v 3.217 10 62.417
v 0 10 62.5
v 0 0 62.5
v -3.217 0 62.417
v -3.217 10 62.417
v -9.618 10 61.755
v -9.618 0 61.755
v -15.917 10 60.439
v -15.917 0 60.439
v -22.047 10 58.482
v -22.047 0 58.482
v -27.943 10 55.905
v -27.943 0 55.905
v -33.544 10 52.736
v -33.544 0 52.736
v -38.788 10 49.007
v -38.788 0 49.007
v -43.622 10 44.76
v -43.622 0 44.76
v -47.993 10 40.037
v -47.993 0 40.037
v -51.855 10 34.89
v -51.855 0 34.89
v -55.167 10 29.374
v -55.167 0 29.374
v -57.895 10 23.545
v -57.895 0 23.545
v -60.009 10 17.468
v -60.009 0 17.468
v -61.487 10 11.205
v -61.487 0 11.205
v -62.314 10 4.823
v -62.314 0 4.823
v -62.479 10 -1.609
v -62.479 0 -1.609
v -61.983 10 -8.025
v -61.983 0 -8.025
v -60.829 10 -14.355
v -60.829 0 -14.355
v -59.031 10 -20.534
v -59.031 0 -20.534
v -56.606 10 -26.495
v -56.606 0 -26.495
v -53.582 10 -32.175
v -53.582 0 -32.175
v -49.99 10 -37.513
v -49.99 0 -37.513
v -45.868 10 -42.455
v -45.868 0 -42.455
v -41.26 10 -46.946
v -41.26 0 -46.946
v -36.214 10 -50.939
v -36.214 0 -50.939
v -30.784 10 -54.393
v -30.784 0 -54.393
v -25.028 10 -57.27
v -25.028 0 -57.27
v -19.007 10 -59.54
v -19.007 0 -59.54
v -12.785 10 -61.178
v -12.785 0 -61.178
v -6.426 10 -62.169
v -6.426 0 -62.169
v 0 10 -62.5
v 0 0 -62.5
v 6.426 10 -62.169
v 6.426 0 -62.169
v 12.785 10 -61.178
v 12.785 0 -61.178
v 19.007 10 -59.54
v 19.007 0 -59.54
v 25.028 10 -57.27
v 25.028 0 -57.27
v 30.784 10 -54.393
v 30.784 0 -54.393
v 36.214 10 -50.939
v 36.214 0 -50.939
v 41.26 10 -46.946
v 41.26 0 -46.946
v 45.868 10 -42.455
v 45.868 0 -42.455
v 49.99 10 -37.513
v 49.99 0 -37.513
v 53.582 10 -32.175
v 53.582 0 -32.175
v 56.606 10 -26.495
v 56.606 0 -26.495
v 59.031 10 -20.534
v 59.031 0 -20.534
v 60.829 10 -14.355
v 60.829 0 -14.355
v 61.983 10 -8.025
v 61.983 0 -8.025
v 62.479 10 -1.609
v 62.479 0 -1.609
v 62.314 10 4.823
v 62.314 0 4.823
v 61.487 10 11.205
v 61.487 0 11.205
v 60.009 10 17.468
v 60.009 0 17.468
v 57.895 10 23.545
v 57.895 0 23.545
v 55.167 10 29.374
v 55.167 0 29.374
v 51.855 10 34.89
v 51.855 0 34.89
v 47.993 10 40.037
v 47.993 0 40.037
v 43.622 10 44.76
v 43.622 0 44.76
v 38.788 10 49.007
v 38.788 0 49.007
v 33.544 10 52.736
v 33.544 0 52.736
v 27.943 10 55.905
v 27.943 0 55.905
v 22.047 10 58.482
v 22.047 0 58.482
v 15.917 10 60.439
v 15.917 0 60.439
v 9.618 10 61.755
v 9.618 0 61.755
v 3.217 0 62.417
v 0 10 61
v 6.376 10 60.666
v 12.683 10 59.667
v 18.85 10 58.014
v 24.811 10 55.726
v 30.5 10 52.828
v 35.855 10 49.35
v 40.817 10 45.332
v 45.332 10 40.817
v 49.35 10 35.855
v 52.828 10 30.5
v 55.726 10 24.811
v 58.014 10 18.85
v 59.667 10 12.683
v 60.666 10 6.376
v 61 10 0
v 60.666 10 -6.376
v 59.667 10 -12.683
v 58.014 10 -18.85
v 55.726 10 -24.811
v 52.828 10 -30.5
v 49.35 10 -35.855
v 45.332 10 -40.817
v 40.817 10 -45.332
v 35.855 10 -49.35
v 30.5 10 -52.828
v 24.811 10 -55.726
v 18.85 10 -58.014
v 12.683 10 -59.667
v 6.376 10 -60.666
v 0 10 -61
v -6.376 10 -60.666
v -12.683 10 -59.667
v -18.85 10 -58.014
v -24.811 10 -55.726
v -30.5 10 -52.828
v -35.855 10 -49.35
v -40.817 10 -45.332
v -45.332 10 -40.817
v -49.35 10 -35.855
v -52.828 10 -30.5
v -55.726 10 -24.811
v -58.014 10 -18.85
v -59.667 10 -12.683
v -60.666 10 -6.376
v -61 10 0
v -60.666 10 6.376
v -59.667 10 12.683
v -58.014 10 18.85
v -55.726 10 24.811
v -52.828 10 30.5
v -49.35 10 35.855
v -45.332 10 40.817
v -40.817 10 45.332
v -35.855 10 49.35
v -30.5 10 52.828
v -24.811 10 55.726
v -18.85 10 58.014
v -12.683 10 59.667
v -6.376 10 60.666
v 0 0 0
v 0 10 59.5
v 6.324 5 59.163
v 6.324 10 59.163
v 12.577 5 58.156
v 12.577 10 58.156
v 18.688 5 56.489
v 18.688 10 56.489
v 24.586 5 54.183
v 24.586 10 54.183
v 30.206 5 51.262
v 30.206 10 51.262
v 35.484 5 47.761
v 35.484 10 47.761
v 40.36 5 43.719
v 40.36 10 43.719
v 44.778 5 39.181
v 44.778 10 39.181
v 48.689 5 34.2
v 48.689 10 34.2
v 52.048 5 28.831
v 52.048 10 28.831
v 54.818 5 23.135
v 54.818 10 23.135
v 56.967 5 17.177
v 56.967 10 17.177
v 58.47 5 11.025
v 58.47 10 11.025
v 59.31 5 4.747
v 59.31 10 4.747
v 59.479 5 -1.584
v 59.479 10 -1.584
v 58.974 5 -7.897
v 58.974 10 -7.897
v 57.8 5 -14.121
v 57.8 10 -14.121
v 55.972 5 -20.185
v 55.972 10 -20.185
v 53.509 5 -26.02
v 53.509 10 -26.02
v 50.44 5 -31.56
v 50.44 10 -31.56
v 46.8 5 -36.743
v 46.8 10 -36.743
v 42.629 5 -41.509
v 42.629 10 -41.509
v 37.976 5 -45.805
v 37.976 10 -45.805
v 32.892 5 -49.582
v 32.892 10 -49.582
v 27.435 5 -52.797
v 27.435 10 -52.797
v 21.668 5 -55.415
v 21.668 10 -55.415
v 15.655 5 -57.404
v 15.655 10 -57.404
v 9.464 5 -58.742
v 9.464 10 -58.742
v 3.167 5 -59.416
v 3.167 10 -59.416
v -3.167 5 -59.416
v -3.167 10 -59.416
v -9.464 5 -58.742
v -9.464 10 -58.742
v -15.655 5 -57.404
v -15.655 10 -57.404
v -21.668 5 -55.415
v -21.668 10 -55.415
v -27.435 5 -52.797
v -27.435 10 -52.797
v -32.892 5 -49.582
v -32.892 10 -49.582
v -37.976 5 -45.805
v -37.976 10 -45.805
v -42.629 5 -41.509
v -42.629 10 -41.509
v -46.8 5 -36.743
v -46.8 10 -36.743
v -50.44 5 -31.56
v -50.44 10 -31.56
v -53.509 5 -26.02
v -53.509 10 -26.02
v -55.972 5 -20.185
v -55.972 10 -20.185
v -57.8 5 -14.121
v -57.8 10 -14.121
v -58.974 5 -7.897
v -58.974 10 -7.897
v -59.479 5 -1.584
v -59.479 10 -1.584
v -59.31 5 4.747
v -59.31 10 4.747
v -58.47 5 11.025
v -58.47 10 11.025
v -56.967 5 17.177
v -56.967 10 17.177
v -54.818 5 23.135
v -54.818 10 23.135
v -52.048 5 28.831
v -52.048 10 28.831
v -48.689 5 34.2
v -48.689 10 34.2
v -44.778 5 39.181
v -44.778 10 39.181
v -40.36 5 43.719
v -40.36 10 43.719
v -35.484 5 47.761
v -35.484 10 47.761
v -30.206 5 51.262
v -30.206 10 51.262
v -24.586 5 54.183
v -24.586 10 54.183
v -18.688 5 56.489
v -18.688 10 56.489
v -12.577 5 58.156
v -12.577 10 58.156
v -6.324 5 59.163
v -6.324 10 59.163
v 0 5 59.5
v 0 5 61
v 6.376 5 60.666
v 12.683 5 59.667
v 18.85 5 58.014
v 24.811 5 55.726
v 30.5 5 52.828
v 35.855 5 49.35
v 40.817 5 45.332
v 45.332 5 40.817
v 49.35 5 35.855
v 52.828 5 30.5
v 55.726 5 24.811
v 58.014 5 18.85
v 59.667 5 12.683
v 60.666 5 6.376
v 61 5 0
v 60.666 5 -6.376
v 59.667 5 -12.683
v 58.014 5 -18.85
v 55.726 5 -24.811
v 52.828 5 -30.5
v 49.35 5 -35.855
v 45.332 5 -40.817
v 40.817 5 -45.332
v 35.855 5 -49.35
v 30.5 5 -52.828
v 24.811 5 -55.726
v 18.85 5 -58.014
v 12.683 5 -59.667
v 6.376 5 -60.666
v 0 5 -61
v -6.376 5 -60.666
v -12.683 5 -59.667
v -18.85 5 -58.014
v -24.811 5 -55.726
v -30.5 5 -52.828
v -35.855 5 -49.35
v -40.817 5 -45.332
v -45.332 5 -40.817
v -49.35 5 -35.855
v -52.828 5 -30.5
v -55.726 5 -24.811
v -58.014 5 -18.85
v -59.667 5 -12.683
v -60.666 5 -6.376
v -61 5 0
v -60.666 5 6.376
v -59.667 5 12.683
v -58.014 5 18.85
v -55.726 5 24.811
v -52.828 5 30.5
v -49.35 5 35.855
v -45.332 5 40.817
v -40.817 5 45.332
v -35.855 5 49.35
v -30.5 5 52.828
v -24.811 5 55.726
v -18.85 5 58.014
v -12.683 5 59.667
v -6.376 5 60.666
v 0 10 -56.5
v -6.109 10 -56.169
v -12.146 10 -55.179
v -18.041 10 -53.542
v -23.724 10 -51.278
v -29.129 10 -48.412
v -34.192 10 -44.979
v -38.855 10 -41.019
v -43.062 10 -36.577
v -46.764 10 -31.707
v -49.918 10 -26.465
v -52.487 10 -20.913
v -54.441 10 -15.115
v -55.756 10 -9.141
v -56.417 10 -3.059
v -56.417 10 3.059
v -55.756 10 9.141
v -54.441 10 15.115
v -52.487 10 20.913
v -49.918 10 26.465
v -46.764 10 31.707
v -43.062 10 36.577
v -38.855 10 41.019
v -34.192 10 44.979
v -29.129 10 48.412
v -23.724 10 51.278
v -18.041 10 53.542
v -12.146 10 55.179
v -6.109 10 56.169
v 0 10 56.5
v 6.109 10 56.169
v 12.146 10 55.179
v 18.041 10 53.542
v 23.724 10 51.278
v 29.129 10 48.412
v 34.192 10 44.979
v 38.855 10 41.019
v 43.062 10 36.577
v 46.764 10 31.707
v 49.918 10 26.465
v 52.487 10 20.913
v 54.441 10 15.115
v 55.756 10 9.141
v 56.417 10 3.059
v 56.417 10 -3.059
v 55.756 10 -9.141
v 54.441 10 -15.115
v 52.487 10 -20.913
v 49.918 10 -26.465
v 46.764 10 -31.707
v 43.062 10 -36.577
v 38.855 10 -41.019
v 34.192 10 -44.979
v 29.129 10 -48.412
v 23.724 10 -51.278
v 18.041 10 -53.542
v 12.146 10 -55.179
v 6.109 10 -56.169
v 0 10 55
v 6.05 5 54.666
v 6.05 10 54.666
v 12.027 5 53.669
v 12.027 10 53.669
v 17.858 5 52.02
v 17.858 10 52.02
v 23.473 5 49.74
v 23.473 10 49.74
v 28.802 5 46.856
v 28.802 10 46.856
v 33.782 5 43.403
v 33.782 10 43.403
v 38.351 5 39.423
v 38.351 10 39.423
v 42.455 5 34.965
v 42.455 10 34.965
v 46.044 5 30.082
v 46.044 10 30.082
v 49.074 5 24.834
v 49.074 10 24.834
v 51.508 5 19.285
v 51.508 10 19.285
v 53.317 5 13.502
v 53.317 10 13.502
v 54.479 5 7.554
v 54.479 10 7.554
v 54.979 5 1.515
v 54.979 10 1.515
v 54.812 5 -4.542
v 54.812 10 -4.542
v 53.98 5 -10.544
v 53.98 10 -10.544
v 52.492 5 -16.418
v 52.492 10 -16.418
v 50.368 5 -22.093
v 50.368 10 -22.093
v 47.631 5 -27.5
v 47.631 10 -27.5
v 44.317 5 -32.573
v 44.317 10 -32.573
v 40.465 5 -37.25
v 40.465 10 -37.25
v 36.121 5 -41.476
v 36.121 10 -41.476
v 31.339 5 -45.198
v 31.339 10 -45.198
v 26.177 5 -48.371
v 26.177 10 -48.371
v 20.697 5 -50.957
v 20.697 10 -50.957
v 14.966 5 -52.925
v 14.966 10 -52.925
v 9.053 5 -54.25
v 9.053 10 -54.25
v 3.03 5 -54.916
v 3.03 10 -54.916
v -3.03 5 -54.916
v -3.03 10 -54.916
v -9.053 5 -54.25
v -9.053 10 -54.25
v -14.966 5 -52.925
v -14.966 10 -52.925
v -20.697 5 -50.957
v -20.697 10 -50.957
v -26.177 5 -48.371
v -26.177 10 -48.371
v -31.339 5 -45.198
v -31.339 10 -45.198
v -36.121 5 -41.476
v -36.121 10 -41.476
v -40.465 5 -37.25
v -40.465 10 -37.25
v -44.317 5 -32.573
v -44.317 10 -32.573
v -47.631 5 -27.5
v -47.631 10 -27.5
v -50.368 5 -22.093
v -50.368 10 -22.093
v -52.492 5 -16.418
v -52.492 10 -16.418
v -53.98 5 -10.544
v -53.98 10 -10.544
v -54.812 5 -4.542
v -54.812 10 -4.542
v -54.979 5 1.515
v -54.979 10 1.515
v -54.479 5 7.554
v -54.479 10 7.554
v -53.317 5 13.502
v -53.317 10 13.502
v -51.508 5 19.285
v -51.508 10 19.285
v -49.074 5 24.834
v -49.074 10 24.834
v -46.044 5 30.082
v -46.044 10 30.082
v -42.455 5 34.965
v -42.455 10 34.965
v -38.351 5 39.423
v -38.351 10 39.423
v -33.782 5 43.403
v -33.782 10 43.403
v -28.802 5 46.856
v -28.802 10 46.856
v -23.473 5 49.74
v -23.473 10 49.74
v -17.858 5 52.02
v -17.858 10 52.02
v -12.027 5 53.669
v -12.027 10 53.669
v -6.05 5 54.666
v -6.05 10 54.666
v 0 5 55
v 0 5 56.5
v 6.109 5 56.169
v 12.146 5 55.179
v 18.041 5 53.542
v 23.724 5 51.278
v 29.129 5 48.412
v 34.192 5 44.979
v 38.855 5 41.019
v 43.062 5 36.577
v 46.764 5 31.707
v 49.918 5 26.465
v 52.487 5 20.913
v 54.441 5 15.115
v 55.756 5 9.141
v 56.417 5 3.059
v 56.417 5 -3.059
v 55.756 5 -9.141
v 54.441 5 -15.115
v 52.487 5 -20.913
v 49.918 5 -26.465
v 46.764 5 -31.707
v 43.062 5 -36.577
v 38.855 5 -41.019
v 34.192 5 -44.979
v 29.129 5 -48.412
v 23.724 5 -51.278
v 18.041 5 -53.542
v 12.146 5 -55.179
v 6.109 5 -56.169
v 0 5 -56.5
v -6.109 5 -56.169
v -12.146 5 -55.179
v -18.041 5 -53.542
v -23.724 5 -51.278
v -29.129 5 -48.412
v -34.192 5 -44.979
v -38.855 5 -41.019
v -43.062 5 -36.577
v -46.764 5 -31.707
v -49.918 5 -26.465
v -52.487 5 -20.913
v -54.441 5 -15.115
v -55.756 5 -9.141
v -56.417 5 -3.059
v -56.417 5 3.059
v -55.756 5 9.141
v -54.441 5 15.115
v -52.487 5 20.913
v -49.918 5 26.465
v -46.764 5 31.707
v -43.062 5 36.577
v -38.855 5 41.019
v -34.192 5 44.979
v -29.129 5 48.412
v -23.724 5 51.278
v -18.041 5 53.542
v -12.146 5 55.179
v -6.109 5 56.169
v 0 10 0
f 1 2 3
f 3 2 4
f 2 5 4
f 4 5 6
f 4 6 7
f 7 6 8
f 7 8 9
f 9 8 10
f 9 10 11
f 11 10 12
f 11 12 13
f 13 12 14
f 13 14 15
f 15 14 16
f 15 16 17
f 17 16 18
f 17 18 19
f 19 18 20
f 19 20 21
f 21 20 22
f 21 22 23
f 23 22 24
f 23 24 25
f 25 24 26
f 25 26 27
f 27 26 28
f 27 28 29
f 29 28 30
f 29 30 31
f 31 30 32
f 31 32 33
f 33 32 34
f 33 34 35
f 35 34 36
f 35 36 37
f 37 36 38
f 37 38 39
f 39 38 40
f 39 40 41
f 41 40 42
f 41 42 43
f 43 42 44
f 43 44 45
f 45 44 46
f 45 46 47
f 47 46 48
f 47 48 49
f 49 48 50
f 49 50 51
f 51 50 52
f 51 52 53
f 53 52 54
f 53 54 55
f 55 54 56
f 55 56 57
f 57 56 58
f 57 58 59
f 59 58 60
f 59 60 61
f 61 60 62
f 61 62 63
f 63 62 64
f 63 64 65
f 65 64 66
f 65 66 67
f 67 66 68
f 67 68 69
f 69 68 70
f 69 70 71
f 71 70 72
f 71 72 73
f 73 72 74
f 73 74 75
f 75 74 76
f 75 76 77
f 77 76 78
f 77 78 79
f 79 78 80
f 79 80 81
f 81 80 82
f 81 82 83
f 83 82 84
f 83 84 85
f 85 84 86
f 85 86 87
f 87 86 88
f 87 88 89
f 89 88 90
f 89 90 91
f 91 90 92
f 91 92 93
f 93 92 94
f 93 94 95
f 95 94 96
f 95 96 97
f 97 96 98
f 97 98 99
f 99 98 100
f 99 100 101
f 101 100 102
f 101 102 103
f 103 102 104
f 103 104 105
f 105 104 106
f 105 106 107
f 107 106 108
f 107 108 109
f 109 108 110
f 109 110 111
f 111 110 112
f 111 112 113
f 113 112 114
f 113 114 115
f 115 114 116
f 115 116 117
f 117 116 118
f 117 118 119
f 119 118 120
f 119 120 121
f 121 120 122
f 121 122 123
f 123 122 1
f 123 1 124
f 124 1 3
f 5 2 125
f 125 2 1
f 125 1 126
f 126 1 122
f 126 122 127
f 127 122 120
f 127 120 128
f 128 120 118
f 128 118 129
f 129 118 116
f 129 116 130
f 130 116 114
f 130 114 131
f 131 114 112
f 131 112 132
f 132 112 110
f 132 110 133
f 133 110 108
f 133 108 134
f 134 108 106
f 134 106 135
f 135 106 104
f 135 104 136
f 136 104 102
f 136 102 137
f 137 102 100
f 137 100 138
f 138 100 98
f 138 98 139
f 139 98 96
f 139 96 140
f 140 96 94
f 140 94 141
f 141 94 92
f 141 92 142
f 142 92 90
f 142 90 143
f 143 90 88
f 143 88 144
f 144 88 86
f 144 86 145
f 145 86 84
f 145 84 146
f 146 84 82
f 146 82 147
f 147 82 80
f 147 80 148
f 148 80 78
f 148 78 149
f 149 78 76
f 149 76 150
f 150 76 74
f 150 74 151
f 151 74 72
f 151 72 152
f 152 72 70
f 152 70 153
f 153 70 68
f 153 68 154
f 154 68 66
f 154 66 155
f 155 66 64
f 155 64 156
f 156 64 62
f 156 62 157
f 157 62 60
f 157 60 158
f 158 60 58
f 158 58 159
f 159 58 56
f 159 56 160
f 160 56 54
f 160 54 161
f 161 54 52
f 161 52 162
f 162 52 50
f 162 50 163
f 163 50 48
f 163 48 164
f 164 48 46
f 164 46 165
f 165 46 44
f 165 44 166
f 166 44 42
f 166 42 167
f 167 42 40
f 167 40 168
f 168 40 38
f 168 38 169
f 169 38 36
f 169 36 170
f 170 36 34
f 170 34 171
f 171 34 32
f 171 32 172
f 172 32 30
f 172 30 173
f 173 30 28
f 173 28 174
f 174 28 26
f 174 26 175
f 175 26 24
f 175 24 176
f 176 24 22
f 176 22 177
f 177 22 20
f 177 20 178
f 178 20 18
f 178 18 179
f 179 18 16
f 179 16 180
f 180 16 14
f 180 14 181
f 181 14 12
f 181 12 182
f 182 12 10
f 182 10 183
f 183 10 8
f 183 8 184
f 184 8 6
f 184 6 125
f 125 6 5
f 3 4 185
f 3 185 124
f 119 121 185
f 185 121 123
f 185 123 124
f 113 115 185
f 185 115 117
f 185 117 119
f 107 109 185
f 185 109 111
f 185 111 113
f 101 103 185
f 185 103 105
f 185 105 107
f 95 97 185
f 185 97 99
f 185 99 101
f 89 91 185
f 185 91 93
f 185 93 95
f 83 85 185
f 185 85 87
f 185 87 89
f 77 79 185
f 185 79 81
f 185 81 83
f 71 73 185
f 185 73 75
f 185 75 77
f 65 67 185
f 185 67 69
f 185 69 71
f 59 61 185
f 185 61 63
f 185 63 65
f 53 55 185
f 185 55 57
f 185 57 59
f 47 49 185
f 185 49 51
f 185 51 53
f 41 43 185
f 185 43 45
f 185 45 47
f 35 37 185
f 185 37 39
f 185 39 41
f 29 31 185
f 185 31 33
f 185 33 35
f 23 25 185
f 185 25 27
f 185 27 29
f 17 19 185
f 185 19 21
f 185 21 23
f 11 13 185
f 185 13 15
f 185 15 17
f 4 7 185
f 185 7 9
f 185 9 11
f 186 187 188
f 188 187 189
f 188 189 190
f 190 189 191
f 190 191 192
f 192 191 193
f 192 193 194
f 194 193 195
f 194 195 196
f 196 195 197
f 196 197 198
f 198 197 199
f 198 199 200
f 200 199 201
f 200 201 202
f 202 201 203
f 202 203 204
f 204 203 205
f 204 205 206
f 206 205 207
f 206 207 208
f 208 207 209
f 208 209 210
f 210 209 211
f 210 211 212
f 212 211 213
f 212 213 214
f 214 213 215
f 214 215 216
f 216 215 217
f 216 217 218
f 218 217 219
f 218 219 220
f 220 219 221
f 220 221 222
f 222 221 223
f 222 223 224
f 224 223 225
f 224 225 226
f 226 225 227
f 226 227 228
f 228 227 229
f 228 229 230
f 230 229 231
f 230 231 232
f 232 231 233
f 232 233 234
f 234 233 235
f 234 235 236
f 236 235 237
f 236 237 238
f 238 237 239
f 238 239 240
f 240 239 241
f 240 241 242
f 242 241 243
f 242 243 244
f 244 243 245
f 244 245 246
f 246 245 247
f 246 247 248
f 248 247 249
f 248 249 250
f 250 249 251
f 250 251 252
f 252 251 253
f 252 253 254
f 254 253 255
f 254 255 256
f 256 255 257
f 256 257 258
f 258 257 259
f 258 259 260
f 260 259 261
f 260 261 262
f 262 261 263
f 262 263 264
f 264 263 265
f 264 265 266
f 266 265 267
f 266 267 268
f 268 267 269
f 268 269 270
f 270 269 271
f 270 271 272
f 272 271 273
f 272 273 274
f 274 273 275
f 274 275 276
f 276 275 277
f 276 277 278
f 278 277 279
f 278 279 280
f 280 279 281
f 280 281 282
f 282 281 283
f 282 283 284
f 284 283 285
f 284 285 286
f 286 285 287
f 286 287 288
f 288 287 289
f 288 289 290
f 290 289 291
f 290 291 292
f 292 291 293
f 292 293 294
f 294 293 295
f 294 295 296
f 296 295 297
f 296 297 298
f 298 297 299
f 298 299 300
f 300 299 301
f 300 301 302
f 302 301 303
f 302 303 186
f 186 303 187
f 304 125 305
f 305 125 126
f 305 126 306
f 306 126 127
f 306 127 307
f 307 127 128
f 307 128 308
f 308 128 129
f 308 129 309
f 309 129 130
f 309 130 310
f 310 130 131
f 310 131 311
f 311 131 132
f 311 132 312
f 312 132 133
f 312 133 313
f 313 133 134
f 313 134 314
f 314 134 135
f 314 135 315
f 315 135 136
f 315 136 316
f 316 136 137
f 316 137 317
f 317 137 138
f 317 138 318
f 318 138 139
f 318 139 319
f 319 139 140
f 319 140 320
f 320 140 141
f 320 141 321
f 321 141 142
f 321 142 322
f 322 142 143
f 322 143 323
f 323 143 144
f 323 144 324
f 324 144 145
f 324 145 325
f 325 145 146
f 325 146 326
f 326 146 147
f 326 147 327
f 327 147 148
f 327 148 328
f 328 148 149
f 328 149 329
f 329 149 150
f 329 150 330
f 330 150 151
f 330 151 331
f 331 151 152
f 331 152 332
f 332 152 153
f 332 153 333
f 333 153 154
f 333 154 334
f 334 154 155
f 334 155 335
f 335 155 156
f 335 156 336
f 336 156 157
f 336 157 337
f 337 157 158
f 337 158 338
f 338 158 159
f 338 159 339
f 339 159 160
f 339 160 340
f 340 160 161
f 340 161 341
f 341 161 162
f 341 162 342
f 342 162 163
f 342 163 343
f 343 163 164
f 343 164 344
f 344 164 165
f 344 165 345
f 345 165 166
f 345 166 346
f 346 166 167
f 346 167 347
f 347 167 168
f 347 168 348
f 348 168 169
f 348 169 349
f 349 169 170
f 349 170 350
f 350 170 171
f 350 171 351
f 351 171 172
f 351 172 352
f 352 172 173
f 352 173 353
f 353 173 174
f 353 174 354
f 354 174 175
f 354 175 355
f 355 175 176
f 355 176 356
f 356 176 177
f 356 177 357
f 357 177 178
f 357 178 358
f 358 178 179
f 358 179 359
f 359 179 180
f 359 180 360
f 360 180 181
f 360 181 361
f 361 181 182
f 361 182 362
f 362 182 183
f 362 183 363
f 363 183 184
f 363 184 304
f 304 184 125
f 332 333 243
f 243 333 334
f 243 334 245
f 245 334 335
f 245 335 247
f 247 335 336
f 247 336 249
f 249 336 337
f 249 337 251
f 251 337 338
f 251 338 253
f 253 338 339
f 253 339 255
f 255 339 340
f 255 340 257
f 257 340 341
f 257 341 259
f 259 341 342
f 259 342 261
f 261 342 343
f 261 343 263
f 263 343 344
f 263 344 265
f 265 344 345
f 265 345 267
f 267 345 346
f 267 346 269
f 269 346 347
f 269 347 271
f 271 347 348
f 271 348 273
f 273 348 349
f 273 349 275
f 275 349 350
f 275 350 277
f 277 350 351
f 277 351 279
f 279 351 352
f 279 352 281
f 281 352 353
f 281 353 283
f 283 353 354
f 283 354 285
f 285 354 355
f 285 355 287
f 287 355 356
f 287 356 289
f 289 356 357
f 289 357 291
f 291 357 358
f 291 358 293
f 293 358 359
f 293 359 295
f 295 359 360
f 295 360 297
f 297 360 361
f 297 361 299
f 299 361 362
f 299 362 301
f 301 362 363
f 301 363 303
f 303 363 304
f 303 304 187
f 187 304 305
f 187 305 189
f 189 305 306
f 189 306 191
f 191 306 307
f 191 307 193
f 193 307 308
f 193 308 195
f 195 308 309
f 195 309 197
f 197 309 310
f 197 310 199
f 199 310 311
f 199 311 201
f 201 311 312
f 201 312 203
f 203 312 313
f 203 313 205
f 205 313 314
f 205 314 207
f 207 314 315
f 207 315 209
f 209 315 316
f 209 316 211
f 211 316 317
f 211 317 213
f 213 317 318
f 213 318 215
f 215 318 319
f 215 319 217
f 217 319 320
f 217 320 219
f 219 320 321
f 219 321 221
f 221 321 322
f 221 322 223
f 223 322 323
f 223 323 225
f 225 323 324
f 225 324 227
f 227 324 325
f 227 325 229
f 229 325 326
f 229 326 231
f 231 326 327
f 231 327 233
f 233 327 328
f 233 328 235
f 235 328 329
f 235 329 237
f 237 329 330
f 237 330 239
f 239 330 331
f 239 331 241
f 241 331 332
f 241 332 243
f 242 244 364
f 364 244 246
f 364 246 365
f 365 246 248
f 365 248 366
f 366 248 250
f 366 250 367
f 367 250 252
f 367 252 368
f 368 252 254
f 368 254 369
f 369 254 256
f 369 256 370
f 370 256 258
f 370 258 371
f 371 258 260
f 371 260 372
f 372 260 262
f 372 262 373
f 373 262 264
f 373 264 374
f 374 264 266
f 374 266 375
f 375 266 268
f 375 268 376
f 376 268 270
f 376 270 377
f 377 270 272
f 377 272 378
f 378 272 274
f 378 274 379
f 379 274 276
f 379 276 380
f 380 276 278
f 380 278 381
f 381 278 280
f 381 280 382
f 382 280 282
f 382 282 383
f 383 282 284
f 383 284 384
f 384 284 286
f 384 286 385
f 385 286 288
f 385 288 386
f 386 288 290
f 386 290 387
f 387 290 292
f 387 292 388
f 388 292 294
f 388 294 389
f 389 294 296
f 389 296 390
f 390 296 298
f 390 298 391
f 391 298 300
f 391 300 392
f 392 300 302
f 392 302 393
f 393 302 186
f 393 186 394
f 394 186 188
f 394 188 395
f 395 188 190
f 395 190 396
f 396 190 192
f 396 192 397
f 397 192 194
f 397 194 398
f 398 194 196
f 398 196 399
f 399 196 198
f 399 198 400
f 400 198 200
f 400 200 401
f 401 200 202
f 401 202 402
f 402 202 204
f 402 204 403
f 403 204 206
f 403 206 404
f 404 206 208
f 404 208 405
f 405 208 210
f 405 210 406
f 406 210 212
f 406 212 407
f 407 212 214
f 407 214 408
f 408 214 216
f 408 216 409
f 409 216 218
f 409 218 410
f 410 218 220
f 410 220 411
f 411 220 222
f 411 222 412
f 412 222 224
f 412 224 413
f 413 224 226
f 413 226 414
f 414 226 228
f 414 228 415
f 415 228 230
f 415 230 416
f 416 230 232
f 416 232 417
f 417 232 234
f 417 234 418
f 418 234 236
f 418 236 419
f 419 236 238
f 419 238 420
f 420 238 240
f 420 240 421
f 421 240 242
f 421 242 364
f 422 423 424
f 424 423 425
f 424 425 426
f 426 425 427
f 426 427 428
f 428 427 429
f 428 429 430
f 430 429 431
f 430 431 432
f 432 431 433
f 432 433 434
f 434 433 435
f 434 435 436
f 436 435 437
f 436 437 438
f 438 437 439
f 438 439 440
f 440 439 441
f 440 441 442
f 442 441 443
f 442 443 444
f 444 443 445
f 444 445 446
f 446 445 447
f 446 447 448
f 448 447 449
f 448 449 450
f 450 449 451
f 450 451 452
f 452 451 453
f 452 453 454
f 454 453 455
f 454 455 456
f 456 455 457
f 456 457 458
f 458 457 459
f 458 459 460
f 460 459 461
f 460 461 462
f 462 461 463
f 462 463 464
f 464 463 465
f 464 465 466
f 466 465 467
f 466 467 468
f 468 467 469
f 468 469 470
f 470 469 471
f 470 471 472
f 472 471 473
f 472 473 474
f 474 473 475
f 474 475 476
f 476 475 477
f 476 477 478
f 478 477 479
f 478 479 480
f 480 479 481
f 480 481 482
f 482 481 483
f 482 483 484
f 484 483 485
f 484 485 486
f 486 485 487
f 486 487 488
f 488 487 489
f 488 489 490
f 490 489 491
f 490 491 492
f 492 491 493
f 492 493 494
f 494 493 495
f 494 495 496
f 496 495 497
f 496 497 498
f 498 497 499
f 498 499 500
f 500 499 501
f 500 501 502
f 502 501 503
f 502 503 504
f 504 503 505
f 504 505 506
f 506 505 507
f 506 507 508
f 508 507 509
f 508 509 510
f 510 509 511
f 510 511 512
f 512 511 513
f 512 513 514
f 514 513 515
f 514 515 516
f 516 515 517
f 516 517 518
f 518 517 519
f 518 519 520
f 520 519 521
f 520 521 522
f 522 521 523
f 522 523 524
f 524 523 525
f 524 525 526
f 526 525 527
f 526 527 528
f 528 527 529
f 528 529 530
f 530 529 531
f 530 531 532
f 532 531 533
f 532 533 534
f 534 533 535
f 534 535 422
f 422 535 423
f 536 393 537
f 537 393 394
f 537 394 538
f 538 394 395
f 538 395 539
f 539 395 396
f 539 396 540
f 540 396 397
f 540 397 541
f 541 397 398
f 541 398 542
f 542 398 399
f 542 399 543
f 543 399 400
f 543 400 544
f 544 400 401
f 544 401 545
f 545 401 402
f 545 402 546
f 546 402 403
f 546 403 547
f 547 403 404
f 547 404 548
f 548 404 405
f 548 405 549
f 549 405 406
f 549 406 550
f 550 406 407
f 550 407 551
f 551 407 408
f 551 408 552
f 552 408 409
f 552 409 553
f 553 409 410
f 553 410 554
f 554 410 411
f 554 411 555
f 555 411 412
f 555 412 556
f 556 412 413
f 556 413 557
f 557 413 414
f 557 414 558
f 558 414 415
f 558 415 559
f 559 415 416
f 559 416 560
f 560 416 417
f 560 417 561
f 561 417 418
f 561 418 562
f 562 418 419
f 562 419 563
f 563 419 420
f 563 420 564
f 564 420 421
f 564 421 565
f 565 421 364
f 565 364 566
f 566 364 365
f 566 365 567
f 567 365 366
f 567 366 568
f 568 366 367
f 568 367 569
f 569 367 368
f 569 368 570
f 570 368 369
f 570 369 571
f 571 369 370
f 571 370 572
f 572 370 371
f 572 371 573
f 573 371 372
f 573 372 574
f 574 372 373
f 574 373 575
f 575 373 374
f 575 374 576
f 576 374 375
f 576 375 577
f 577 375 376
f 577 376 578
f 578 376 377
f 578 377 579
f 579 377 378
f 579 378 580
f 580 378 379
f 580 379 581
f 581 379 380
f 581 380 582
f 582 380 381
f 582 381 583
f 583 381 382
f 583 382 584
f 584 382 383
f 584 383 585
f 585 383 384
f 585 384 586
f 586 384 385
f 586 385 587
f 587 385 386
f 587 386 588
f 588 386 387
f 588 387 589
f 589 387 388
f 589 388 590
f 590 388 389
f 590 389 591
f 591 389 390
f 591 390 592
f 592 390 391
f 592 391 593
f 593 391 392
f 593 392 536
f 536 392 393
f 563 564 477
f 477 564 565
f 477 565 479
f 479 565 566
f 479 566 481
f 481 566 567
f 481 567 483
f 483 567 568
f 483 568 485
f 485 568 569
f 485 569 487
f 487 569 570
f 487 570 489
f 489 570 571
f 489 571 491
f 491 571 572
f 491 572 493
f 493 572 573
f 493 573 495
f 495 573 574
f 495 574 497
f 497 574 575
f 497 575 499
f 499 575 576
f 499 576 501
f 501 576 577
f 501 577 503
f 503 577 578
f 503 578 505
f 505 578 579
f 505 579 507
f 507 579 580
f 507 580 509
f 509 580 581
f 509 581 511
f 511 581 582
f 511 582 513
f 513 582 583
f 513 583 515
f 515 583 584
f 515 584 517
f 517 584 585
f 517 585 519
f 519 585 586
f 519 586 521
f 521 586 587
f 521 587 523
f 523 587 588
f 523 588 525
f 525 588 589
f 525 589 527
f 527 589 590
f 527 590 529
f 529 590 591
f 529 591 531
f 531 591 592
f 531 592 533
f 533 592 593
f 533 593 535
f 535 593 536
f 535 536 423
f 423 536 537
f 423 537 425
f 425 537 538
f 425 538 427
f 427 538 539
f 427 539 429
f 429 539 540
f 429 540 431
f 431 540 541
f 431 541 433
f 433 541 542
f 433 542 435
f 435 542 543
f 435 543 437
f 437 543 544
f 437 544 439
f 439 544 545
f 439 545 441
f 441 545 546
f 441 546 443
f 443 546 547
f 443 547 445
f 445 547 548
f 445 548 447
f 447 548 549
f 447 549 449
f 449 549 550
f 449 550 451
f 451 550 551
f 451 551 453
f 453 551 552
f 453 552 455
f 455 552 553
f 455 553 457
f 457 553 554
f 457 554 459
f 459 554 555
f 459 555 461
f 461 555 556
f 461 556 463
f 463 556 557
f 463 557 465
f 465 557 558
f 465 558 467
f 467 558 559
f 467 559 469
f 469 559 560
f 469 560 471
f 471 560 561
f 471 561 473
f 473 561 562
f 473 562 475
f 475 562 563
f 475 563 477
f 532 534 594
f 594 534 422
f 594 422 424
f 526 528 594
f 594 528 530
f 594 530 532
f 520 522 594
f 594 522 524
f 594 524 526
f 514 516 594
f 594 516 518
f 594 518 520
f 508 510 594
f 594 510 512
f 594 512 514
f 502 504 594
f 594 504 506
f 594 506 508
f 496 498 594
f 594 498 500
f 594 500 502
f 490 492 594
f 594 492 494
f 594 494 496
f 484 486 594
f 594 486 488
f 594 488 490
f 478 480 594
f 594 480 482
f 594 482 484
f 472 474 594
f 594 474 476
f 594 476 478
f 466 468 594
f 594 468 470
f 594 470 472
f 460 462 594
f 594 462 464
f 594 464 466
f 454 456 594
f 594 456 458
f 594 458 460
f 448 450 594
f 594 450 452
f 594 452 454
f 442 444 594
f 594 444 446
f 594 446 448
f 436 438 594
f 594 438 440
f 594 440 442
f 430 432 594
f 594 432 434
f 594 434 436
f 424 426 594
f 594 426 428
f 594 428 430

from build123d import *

# Parameters (mm, degrees)
SKETCH2_R           = 62.5
BOSS_EXTRUDE1_DEPTH = 10
SKETCH3_R           = 61
SKETCH3_R_2         = 59.5
SKETCH3_R_3         = 56.5
SKETCH3_R_4         = 55
CUT_EXTRUDE1_DEPTH  = 5


with BuildPart() as part:
    # Sketch2 → Boss-Extrude1 (new body)
    with BuildSketch(Plane(origin=(0, 0, 0), x_dir=(1, 0, 0), z_dir=(0, 1, 0))):
        with Locations(Location((0, 0, 0), (0, 0, 270))):
            Circle(SKETCH2_R)
    extrude(amount=BOSS_EXTRUDE1_DEPTH)

    # Sketch3 → Cut-Extrude1 (cut)
    # profile 1 of 2: a face of its own
    with BuildSketch(Plane(origin=(0, 10, 0), x_dir=(1, 0, 0), z_dir=(0, 1, 0))):
        with Locations(Location((0, 0, 0), (0, 0, 270))):
            Circle(SKETCH3_R)
        with Locations(Location((0, 0, 0), (0, 0, 270))):
            Circle(SKETCH3_R_2, mode=Mode.SUBTRACT)
    # profile 2 of 2: a face of its own
    with BuildSketch(Plane(origin=(0, 10, 0), x_dir=(1, 0, 0), z_dir=(0, 1, 0))):
        with Locations(Location((0, 0, 0), (0, 0, 270))):
            Circle(SKETCH3_R_3)
        with Locations(Location((0, 0, 0), (0, 0, 270))):
            Circle(SKETCH3_R_4, mode=Mode.SUBTRACT)
    extrude(amount=-CUT_EXTRUDE1_DEPTH, mode=Mode.SUBTRACT)


solid = part.part
